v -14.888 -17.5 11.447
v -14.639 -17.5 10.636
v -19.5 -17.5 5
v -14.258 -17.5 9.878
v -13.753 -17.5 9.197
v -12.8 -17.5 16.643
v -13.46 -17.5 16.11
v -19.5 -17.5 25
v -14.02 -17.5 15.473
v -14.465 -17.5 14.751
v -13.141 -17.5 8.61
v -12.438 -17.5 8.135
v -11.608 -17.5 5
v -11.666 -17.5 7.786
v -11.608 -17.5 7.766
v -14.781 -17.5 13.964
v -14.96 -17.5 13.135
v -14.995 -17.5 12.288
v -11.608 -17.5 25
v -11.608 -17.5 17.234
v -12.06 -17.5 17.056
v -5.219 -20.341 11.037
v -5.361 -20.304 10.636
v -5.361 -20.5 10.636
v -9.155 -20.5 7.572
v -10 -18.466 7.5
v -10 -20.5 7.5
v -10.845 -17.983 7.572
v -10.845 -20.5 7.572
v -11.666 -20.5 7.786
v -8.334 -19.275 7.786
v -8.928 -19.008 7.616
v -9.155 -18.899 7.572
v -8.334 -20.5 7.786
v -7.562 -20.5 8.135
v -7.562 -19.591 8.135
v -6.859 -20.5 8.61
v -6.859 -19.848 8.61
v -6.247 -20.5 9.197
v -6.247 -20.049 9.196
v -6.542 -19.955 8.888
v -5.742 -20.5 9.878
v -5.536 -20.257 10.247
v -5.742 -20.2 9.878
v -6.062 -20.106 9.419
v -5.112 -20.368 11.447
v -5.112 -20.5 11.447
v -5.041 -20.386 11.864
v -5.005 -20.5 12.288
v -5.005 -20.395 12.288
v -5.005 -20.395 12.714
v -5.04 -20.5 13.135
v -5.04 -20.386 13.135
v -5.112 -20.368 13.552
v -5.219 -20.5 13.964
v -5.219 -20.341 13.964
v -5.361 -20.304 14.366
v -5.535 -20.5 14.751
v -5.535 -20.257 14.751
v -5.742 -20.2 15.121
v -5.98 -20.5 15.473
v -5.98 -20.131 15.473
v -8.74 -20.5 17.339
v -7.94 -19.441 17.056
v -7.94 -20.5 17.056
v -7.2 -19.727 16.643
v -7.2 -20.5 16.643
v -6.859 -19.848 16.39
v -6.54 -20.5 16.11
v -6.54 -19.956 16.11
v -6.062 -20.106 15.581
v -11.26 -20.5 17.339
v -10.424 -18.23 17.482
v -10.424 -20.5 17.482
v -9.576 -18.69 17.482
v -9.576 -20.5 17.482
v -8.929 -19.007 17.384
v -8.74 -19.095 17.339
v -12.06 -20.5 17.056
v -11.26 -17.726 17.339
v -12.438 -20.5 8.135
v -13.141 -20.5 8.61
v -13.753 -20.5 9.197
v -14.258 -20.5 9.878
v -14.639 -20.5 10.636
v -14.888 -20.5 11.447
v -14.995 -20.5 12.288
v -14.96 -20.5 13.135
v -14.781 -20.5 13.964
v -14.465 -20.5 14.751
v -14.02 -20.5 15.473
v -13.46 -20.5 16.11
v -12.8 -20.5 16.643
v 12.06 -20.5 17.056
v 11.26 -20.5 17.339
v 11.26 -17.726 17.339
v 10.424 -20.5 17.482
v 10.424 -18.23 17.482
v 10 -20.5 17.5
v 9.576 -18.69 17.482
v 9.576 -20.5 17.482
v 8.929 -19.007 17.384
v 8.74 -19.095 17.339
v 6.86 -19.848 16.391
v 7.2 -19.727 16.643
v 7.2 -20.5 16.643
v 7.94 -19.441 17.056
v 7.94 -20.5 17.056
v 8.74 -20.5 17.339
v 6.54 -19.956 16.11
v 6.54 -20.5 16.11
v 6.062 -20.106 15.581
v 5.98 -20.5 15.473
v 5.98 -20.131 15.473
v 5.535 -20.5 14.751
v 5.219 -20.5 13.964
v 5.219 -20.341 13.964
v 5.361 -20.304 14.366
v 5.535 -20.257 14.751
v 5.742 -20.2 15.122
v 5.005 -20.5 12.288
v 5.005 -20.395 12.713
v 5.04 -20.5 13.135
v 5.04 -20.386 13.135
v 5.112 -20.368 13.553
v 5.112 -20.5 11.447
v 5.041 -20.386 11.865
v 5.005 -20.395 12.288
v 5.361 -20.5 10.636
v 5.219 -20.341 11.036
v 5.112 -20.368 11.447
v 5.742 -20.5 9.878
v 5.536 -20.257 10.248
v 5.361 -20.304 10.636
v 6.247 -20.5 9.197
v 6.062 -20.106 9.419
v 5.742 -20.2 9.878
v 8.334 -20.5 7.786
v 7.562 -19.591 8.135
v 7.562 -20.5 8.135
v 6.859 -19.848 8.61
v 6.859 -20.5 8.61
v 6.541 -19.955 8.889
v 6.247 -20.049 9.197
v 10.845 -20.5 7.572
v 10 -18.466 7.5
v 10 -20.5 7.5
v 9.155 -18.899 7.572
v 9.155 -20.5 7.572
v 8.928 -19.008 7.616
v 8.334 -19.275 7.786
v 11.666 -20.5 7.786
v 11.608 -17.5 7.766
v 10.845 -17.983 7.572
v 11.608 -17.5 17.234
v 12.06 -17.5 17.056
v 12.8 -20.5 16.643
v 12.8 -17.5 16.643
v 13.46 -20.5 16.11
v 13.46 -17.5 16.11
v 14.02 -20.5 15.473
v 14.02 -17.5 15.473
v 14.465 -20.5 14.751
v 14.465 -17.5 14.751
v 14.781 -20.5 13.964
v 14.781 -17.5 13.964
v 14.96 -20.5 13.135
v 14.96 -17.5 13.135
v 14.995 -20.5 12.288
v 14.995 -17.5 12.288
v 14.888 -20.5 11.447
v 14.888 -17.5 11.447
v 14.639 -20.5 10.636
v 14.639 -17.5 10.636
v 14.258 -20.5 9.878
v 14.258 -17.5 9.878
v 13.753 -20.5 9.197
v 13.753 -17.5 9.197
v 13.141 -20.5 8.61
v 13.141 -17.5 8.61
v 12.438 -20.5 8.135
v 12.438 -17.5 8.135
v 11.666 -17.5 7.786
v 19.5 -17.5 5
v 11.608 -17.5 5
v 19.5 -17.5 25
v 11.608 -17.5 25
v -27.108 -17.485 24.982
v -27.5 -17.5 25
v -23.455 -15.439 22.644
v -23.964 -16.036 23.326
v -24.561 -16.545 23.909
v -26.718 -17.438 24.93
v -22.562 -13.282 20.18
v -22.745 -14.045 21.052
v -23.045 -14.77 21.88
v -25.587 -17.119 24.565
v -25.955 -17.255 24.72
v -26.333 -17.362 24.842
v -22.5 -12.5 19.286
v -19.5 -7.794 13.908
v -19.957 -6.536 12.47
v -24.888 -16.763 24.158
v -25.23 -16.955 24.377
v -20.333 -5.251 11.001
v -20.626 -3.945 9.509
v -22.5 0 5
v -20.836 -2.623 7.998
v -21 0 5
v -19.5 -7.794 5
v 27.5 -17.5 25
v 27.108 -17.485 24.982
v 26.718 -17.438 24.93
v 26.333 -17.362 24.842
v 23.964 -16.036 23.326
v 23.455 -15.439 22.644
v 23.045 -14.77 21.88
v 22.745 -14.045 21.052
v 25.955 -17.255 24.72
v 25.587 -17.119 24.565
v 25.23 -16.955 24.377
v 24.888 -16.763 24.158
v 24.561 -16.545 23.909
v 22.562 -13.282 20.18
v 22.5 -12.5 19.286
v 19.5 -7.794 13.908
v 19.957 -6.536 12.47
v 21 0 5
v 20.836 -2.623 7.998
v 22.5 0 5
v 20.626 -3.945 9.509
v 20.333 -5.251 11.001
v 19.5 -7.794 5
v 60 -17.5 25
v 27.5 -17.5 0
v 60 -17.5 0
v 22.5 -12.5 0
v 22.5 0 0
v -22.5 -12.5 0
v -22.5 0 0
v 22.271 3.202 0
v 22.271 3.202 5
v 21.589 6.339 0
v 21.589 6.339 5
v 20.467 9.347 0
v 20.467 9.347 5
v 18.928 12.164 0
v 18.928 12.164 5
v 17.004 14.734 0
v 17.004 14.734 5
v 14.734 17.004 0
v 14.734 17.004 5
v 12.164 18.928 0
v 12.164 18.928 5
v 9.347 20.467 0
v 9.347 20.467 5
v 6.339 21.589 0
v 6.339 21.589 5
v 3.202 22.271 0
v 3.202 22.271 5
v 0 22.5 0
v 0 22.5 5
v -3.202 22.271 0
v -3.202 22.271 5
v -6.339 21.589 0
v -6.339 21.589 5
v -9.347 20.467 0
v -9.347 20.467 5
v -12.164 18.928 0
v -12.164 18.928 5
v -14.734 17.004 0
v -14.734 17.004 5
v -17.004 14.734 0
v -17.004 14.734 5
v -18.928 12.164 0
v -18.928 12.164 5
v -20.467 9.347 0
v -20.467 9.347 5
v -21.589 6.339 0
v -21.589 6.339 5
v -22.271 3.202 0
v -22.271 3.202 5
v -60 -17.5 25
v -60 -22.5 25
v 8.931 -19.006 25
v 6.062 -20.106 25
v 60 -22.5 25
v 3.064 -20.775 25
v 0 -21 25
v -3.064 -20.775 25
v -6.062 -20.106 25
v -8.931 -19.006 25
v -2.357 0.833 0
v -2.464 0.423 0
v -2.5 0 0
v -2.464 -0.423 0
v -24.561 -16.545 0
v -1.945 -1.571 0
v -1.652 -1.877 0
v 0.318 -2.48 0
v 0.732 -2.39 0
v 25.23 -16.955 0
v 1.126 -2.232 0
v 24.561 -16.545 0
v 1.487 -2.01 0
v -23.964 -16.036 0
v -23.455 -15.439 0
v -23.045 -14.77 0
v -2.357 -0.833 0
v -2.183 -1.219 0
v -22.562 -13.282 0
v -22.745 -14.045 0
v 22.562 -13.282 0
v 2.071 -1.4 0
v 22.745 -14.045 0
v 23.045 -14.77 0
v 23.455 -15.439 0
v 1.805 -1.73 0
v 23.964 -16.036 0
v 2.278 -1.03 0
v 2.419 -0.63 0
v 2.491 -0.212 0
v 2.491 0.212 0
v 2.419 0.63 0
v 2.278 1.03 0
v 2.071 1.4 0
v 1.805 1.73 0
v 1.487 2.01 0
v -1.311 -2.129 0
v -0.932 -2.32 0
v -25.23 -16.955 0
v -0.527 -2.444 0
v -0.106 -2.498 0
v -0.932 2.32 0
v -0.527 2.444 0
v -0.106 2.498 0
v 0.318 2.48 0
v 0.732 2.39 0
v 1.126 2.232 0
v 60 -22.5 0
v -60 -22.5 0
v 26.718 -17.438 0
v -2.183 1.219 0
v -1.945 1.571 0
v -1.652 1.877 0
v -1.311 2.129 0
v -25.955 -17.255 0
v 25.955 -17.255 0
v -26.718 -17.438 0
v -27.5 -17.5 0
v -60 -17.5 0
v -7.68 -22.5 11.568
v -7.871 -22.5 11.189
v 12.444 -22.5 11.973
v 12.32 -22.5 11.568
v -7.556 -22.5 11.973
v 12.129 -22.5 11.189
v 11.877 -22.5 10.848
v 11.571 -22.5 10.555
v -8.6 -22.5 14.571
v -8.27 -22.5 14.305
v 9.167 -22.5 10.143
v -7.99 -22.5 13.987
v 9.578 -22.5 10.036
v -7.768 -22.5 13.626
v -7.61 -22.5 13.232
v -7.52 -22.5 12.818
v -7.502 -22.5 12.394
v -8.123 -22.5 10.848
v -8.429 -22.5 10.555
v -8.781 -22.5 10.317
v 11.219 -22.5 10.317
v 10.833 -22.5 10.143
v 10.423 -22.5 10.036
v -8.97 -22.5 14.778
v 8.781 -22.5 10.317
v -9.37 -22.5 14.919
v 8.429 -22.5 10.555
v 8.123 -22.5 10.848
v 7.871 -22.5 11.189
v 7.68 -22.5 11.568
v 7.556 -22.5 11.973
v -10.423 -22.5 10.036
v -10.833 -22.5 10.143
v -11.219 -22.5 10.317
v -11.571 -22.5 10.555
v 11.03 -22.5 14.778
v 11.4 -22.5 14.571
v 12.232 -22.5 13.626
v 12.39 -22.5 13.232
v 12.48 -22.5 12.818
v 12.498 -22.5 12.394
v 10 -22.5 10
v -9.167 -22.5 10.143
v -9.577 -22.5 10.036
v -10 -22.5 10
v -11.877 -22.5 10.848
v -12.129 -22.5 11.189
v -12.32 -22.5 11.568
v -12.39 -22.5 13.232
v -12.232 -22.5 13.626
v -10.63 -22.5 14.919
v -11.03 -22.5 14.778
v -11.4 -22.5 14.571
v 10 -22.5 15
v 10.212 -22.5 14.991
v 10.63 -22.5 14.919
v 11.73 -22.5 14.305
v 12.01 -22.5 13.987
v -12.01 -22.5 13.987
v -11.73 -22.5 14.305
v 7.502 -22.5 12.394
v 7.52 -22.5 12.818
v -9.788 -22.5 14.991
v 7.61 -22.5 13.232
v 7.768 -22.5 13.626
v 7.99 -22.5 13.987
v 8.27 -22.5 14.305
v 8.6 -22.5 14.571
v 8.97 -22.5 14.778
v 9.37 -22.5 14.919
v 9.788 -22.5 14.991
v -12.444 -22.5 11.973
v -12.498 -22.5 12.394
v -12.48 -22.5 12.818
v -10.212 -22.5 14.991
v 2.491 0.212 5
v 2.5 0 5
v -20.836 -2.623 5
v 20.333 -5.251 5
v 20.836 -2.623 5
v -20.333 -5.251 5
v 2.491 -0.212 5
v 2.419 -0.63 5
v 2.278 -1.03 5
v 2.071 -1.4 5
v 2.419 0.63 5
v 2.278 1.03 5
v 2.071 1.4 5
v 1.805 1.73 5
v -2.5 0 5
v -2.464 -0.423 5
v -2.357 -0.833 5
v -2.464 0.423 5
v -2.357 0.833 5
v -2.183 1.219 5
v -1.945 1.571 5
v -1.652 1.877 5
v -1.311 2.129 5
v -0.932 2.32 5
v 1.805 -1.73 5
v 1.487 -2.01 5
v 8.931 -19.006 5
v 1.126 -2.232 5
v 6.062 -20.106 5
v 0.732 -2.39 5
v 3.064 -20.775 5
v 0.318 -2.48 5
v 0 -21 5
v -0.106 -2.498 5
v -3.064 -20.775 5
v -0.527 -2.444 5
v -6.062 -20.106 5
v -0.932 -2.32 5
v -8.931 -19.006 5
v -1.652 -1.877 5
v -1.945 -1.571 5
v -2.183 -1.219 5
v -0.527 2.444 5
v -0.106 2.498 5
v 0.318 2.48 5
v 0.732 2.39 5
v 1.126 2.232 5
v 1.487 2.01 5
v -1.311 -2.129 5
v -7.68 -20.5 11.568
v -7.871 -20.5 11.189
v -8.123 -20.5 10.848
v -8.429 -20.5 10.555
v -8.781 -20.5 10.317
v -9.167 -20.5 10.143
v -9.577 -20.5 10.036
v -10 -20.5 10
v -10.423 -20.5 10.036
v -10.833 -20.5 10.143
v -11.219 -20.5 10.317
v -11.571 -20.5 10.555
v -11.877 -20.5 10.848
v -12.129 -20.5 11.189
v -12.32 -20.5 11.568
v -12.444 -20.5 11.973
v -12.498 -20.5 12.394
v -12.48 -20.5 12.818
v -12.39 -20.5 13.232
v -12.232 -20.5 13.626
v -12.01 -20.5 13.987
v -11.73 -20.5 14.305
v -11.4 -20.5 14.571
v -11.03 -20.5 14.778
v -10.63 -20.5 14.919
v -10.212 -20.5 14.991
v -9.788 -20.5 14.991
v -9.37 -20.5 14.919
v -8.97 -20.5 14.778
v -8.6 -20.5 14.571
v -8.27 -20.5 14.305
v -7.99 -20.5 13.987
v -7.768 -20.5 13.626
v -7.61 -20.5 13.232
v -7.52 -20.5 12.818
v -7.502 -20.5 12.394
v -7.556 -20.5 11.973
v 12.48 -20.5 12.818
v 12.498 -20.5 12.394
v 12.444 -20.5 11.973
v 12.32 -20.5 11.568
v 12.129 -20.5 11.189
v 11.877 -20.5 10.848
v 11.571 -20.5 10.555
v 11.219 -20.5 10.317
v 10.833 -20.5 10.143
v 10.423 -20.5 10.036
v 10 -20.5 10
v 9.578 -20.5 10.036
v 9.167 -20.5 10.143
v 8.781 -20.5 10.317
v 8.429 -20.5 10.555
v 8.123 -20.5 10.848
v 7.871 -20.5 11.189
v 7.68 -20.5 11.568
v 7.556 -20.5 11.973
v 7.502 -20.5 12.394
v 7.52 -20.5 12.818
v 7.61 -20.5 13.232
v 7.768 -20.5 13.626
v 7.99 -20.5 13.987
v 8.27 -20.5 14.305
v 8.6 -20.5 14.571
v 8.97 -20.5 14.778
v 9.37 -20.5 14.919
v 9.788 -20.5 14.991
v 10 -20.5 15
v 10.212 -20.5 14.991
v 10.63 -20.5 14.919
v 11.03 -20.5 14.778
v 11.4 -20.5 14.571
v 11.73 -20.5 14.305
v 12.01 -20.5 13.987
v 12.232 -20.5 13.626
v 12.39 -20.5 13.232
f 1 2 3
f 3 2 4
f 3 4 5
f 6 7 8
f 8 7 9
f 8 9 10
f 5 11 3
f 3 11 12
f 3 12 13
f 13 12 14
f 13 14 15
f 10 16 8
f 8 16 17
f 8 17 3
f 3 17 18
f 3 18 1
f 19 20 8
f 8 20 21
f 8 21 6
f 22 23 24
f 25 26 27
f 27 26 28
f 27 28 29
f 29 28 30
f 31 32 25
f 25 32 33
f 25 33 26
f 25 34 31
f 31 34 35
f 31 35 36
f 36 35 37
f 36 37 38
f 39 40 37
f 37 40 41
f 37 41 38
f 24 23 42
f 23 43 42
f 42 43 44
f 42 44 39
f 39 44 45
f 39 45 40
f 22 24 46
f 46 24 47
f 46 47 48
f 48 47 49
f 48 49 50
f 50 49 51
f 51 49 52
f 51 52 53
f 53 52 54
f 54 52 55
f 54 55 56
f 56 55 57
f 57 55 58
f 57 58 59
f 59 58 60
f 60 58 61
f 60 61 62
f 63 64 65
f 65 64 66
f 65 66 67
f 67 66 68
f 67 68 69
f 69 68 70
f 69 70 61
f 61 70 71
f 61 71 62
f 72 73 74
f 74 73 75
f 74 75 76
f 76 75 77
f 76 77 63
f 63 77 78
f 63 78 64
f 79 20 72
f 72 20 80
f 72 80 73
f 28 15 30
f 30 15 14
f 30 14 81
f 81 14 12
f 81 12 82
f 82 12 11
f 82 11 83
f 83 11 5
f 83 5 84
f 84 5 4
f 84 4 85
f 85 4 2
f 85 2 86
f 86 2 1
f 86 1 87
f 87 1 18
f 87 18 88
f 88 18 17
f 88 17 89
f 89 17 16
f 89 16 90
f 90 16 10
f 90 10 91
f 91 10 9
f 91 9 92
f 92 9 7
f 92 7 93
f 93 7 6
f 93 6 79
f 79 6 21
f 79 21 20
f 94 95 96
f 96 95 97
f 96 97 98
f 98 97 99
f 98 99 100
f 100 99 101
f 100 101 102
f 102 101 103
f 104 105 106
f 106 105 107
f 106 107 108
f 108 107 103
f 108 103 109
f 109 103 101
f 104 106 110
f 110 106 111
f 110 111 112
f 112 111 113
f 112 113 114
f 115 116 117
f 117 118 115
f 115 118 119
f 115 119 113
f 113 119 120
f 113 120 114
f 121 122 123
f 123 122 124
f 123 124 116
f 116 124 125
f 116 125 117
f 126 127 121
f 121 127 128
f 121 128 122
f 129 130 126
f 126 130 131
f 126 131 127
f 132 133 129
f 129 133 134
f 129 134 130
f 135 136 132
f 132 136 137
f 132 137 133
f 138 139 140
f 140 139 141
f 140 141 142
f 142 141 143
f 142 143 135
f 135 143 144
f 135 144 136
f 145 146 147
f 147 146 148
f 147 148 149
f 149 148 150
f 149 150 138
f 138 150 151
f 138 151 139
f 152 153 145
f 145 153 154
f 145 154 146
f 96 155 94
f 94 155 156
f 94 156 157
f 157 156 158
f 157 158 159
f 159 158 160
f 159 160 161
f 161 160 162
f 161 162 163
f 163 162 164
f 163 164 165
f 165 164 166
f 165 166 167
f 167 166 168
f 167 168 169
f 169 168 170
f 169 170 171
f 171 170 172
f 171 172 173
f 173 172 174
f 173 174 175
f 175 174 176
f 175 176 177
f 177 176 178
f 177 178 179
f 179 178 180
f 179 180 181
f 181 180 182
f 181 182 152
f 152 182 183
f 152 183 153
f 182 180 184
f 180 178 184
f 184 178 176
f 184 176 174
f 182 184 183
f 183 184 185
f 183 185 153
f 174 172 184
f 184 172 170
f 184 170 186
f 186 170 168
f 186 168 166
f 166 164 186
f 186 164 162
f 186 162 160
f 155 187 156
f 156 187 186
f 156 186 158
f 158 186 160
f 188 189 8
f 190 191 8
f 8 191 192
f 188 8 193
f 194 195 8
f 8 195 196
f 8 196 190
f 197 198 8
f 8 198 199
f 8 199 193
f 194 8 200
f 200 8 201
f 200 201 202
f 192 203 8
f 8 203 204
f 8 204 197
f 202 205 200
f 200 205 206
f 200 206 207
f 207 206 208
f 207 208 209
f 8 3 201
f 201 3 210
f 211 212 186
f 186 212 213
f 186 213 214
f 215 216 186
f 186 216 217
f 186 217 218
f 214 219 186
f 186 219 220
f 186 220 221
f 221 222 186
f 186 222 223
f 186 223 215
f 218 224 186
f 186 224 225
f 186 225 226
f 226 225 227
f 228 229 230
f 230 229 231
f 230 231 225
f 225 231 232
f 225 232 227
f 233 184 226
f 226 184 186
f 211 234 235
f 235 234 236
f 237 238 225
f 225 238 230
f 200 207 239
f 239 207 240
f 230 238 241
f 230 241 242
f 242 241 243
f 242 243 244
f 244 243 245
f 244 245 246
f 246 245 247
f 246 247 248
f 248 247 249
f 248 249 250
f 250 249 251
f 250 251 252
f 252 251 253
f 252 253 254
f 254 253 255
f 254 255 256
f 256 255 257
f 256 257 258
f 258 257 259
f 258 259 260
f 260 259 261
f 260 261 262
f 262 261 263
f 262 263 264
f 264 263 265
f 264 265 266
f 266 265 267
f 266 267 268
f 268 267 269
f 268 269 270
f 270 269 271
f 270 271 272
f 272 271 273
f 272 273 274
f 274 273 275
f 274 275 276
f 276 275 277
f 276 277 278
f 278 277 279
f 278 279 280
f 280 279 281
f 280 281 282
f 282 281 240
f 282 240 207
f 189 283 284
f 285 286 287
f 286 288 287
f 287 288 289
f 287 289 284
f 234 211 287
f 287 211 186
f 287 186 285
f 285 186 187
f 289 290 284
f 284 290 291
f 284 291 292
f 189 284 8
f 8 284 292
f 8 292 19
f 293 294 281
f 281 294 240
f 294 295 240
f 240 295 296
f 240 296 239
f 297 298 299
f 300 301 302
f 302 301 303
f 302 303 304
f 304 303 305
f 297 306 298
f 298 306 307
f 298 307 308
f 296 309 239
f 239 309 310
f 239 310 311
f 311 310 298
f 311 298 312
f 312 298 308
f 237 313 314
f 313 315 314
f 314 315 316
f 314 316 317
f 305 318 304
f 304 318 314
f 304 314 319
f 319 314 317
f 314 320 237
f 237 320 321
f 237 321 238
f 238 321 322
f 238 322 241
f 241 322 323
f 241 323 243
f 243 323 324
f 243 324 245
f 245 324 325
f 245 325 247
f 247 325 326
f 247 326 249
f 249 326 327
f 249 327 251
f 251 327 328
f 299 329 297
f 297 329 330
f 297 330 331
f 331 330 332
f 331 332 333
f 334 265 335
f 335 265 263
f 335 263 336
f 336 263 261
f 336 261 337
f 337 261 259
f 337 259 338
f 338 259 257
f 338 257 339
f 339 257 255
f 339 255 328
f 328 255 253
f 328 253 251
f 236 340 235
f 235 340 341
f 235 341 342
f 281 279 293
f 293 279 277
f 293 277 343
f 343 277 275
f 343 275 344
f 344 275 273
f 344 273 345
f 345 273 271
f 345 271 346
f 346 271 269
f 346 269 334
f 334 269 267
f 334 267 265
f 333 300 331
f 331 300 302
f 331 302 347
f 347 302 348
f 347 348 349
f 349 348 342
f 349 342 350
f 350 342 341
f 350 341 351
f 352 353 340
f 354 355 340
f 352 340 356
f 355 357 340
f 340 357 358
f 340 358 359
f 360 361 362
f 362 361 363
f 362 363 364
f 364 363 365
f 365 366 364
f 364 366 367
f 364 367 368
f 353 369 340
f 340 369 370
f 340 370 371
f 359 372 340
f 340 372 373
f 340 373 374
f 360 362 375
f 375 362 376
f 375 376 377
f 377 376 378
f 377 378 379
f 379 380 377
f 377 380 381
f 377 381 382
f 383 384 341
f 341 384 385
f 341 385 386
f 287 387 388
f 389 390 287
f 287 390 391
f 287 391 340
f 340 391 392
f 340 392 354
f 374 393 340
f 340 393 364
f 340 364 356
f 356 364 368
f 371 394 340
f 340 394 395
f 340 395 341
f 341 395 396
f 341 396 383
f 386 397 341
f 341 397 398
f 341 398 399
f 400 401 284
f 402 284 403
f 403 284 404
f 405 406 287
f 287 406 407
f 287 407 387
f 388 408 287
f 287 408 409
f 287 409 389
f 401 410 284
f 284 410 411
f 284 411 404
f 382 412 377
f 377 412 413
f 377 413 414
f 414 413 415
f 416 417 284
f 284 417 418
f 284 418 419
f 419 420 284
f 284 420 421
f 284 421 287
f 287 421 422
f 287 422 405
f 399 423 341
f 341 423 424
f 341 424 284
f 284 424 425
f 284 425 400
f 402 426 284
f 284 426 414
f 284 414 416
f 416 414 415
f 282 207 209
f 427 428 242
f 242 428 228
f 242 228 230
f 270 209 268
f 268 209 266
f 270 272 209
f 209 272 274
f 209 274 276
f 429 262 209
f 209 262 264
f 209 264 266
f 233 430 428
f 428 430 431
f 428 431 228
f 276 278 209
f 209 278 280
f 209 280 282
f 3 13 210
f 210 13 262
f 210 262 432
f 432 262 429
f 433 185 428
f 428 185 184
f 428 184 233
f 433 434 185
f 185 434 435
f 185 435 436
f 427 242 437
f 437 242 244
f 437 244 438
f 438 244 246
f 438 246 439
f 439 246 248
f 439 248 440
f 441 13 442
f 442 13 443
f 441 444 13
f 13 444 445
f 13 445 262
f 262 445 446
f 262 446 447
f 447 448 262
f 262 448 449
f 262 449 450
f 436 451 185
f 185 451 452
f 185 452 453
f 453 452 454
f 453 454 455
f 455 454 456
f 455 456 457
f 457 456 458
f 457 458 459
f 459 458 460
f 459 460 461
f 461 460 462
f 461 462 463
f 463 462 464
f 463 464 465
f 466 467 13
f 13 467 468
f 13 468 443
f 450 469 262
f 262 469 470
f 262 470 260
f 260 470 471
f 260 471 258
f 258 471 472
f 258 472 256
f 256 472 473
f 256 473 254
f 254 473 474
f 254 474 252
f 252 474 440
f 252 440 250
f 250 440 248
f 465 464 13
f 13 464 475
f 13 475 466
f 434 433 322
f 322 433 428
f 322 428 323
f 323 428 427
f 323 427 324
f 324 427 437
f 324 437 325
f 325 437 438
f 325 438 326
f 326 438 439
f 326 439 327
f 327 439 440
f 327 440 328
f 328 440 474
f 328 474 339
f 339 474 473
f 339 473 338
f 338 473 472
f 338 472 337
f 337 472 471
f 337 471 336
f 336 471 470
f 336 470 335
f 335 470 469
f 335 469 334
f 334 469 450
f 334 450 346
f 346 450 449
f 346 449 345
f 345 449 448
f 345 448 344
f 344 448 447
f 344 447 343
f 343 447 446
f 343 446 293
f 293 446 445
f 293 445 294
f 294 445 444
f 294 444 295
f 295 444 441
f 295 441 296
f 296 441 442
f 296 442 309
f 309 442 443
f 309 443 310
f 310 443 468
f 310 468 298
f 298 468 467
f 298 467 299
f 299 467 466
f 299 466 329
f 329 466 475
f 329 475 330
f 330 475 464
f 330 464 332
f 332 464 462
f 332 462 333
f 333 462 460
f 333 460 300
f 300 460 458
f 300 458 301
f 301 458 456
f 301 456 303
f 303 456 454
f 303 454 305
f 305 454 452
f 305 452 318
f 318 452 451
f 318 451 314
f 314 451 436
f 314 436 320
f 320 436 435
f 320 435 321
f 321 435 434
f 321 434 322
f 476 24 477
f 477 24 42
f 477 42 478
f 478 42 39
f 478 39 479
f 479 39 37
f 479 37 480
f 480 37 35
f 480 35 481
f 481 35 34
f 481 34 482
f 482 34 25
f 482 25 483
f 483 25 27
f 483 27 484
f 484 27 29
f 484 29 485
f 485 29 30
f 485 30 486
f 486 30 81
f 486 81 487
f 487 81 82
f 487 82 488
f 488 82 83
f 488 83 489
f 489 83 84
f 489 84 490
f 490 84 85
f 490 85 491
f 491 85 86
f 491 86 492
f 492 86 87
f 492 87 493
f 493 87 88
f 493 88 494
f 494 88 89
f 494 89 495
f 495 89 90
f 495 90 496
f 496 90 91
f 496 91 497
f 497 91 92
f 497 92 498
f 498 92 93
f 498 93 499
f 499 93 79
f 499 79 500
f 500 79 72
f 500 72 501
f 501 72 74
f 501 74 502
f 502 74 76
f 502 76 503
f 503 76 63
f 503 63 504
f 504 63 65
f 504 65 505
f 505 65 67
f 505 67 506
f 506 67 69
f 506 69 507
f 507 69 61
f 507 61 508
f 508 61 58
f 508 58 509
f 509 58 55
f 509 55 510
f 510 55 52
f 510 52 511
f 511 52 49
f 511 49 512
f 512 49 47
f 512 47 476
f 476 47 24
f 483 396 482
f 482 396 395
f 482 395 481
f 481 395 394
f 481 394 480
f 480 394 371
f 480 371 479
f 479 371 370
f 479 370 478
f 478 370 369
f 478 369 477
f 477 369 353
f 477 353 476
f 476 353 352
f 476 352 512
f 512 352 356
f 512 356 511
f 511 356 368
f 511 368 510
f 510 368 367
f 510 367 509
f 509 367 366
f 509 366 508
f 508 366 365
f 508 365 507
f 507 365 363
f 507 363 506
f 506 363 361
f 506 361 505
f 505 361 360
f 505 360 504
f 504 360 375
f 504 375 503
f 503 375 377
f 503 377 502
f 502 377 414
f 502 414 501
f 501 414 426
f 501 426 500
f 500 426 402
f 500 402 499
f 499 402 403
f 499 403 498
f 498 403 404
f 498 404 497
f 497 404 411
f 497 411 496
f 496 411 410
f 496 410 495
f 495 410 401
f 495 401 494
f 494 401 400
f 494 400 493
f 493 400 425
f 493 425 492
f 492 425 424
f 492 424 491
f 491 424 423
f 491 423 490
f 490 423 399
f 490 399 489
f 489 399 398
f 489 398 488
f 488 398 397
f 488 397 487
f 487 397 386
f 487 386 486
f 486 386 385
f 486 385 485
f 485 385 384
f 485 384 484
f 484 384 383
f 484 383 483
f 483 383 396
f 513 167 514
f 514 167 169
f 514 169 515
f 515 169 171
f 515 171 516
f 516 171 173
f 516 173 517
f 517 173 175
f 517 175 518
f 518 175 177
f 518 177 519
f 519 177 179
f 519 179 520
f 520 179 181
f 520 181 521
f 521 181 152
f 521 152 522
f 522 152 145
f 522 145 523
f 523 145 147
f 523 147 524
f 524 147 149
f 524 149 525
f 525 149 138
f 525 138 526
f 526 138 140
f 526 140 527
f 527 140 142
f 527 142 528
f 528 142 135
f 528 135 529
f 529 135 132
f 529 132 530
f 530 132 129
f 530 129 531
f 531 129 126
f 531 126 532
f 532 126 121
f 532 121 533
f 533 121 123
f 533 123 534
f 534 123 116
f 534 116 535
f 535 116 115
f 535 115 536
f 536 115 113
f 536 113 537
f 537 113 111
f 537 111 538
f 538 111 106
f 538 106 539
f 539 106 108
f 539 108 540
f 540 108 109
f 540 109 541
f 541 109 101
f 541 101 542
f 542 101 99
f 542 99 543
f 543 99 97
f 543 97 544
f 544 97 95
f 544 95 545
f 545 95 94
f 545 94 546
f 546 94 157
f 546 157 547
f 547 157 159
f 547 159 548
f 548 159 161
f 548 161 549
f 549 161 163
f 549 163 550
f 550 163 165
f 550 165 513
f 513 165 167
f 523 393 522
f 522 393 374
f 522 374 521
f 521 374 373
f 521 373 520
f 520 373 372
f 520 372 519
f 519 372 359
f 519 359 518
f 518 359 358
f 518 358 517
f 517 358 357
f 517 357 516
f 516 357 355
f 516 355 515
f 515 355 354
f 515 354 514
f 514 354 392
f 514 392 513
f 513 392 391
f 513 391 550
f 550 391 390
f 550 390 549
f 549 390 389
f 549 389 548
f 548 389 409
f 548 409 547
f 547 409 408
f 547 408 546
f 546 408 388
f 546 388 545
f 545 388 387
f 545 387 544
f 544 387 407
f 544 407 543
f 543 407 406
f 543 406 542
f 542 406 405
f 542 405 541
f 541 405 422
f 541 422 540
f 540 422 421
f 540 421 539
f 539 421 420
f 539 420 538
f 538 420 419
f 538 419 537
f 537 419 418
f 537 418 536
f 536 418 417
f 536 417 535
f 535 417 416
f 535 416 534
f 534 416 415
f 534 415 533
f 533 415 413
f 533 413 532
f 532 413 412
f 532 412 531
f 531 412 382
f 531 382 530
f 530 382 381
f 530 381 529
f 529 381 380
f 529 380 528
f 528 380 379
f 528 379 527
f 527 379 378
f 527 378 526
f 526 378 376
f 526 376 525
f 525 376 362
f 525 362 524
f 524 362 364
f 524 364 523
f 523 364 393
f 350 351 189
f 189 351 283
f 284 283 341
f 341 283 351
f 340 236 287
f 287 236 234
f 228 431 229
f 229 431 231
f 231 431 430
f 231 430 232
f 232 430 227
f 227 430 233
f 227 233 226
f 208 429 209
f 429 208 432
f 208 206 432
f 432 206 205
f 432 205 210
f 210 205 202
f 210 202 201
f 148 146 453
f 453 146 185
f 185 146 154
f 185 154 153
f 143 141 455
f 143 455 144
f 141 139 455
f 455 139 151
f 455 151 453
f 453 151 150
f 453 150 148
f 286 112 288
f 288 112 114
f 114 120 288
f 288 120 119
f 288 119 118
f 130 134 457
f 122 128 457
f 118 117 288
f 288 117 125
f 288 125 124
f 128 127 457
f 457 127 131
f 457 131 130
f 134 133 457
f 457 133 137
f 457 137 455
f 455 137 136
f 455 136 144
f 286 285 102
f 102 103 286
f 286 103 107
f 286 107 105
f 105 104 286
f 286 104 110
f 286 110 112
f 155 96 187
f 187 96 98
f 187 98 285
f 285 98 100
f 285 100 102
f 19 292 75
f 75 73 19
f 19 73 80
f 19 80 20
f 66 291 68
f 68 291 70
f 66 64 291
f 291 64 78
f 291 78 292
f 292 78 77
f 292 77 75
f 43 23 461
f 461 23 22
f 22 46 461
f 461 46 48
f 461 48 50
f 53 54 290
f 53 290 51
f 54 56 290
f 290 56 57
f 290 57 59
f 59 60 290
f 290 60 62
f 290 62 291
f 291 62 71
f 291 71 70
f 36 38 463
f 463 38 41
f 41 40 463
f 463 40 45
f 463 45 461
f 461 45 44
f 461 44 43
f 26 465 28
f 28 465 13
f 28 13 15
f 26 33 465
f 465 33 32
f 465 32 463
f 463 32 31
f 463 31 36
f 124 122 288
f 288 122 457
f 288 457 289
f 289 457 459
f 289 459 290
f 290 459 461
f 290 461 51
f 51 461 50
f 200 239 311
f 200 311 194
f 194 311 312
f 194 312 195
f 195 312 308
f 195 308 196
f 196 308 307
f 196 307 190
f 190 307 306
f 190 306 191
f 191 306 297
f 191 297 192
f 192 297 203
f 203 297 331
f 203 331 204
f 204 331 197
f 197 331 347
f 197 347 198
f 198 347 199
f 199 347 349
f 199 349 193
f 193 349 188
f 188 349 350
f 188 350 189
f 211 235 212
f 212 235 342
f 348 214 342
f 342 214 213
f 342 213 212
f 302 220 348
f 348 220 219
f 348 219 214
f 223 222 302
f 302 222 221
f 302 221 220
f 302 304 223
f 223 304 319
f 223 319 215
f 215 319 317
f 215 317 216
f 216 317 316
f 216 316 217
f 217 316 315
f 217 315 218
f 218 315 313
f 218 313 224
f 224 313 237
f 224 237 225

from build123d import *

# Parameters (mm, degrees)
SKETCH2_R           = 22.5
BOSS_EXTRUDE3_DEPTH = 25
SKETCH6_W           = 45
SKETCH6_H           = 22.5
BOSS_EXTRUDE4_DEPTH = 25
SKETCH4_R           = 20
CUT_EXTRUDE1_DEPTH  = 20
SKETCH5_R           = 2.5
CUT_EXTRUDE2_DEPTH  = 5
SKETCH7_R           = 5
CUT_EXTRUDE6_DEPTH  = 46
SKETCH9_R           = 5
SKETCH9_R_2         = 2.5
BOSS_EXTRUDE5_DEPTH = 2
SKETCH14_W          = 15
SKETCH14_H          = 5
CUT_EXTRUDE8_DEPTH  = 46.0000001
SKETCH15_W          = 25
SKETCH15_H          = 5
BOSS_EXTRUDE6_DEPTH = 37.5
SKETCH16_W          = 25
SKETCH16_H          = 5
BOSS_EXTRUDE7_DEPTH = 37.5
SKETCH19_W          = 50
SKETCH19_H          = 50
CUT_EXTRUDE9_DEPTH  = 20
BOSS_EXTRUDE8_DEPTH = 3
BOSS_EXTRUDE9_DEPTH = 3
SKETCH22_R          = 21
CUT_EXTRUDE10_DEPTH = 21.0000001
FILLET2_R           = 5


with BuildPart() as part:
    # Sketch2 → Boss-Extrude3 (new body)
    with BuildSketch(Plane.XY):
        Circle(SKETCH2_R)
    extrude(amount=BOSS_EXTRUDE3_DEPTH)

    # Sketch6 → Boss-Extrude4 (add)
    with BuildSketch(Plane.XY):
        with Locations((0, -11.25)):
            Rectangle(SKETCH6_W, SKETCH6_H)
    extrude(amount=BOSS_EXTRUDE4_DEPTH)

    # Sketch4 → Cut-Extrude1 (cut)
    with BuildSketch(Plane.XY.offset(25)):
        Circle(SKETCH4_R)
    extrude(amount=-CUT_EXTRUDE1_DEPTH, mode=Mode.SUBTRACT)

    # Sketch5 → Cut-Extrude2 (cut)
    with BuildSketch(Plane(origin=(0, 0, 0), x_dir=(-1, 0, 0), z_dir=(0, 0, -1))):
        Circle(SKETCH5_R)
    extrude(amount=-CUT_EXTRUDE2_DEPTH, mode=Mode.SUBTRACT)

    # Sketch7 → Cut-Extrude6 (cut, through all)
    with BuildSketch(Plane.XZ.offset(22.5)):
        with Locations((-10, 12.5)):
            Circle(SKETCH7_R)
        with Locations((10, 12.5)):
            Circle(SKETCH7_R)
    extrude(amount=-CUT_EXTRUDE6_DEPTH, mode=Mode.SUBTRACT)

    # Sketch9 → Boss-Extrude5 (add)
    with BuildSketch(Plane.XZ.offset(22.5)):
        with Locations((-10, 12.5)):
            Circle(SKETCH9_R)
        with Locations((-10, 12.5)):
            Circle(SKETCH9_R_2, mode=Mode.SUBTRACT)
        with Locations((10, 12.5)):
            Circle(SKETCH9_R)
        with Locations((10, 12.5)):
            Circle(SKETCH9_R_2, mode=Mode.SUBTRACT)
    extrude(amount=-BOSS_EXTRUDE5_DEPTH)

    # Sketch14 → Cut-Extrude8 (cut, through all)
    with BuildSketch(Plane(origin=(22.5, 0, 0), x_dir=(0, 0, -1), z_dir=(1, 0, 0))):
        with Locations((-12.5, 0)):
            Rectangle(SKETCH14_W, SKETCH14_H)
    extrude(amount=-CUT_EXTRUDE8_DEPTH, mode=Mode.SUBTRACT)

    # Sketch15 → Boss-Extrude6 (add)
    with BuildSketch(Plane.ZY.offset(22.5)):
        with Locations((12.5, -20)):
            Rectangle(SKETCH15_W, SKETCH15_H)
    extrude(amount=BOSS_EXTRUDE6_DEPTH)

    # Sketch16 → Boss-Extrude7 (add)
    with BuildSketch(Plane(origin=(22.5, 0, 0), x_dir=(0, 0, -1), z_dir=(1, 0, 0))):
        with Locations((-12.5, -20)):
            Rectangle(SKETCH16_W, SKETCH16_H)
    extrude(amount=BOSS_EXTRUDE7_DEPTH)

    # Sketch19 → Cut-Extrude9 (cut)
    with BuildSketch(Plane.XY.offset(25)):
        with Locations((2.5, 7.5)):
            Rectangle(SKETCH19_W, SKETCH19_H)
    extrude(amount=-CUT_EXTRUDE9_DEPTH, mode=Mode.SUBTRACT)

    # Sketch24 → Boss-Extrude8 (add)
    with BuildSketch(Plane.ZY.offset(22.5)):
        Polygon((5, 0), (5, -17.5), (25, -17.5), align=None)
    extrude(amount=-BOSS_EXTRUDE8_DEPTH)

    # Sketch25 → Boss-Extrude9 (add)
    with BuildSketch(Plane(origin=(22.5, 0, 0), x_dir=(0, 0, -1), z_dir=(1, 0, 0))):
        Polygon((-5, 0), (-25, -17.5), (-5, -17.5), align=None)
    extrude(amount=-BOSS_EXTRUDE9_DEPTH)

    # Sketch22 → Cut-Extrude10 (cut, through all)
    with BuildSketch(Plane.XY.offset(5)):
        Circle(SKETCH22_R)
    extrude(amount=CUT_EXTRUDE10_DEPTH, mode=Mode.SUBTRACT)

    # Fillet2
    fillet2_edges = [part.edges().sort_by_distance(p)[0] for p in [
        (22.5, -17.5, 12.5),
        (-22.5, -17.5, 12.5),
    ]]
    fillet(fillet2_edges, radius=FILLET2_R)


solid = part.part
